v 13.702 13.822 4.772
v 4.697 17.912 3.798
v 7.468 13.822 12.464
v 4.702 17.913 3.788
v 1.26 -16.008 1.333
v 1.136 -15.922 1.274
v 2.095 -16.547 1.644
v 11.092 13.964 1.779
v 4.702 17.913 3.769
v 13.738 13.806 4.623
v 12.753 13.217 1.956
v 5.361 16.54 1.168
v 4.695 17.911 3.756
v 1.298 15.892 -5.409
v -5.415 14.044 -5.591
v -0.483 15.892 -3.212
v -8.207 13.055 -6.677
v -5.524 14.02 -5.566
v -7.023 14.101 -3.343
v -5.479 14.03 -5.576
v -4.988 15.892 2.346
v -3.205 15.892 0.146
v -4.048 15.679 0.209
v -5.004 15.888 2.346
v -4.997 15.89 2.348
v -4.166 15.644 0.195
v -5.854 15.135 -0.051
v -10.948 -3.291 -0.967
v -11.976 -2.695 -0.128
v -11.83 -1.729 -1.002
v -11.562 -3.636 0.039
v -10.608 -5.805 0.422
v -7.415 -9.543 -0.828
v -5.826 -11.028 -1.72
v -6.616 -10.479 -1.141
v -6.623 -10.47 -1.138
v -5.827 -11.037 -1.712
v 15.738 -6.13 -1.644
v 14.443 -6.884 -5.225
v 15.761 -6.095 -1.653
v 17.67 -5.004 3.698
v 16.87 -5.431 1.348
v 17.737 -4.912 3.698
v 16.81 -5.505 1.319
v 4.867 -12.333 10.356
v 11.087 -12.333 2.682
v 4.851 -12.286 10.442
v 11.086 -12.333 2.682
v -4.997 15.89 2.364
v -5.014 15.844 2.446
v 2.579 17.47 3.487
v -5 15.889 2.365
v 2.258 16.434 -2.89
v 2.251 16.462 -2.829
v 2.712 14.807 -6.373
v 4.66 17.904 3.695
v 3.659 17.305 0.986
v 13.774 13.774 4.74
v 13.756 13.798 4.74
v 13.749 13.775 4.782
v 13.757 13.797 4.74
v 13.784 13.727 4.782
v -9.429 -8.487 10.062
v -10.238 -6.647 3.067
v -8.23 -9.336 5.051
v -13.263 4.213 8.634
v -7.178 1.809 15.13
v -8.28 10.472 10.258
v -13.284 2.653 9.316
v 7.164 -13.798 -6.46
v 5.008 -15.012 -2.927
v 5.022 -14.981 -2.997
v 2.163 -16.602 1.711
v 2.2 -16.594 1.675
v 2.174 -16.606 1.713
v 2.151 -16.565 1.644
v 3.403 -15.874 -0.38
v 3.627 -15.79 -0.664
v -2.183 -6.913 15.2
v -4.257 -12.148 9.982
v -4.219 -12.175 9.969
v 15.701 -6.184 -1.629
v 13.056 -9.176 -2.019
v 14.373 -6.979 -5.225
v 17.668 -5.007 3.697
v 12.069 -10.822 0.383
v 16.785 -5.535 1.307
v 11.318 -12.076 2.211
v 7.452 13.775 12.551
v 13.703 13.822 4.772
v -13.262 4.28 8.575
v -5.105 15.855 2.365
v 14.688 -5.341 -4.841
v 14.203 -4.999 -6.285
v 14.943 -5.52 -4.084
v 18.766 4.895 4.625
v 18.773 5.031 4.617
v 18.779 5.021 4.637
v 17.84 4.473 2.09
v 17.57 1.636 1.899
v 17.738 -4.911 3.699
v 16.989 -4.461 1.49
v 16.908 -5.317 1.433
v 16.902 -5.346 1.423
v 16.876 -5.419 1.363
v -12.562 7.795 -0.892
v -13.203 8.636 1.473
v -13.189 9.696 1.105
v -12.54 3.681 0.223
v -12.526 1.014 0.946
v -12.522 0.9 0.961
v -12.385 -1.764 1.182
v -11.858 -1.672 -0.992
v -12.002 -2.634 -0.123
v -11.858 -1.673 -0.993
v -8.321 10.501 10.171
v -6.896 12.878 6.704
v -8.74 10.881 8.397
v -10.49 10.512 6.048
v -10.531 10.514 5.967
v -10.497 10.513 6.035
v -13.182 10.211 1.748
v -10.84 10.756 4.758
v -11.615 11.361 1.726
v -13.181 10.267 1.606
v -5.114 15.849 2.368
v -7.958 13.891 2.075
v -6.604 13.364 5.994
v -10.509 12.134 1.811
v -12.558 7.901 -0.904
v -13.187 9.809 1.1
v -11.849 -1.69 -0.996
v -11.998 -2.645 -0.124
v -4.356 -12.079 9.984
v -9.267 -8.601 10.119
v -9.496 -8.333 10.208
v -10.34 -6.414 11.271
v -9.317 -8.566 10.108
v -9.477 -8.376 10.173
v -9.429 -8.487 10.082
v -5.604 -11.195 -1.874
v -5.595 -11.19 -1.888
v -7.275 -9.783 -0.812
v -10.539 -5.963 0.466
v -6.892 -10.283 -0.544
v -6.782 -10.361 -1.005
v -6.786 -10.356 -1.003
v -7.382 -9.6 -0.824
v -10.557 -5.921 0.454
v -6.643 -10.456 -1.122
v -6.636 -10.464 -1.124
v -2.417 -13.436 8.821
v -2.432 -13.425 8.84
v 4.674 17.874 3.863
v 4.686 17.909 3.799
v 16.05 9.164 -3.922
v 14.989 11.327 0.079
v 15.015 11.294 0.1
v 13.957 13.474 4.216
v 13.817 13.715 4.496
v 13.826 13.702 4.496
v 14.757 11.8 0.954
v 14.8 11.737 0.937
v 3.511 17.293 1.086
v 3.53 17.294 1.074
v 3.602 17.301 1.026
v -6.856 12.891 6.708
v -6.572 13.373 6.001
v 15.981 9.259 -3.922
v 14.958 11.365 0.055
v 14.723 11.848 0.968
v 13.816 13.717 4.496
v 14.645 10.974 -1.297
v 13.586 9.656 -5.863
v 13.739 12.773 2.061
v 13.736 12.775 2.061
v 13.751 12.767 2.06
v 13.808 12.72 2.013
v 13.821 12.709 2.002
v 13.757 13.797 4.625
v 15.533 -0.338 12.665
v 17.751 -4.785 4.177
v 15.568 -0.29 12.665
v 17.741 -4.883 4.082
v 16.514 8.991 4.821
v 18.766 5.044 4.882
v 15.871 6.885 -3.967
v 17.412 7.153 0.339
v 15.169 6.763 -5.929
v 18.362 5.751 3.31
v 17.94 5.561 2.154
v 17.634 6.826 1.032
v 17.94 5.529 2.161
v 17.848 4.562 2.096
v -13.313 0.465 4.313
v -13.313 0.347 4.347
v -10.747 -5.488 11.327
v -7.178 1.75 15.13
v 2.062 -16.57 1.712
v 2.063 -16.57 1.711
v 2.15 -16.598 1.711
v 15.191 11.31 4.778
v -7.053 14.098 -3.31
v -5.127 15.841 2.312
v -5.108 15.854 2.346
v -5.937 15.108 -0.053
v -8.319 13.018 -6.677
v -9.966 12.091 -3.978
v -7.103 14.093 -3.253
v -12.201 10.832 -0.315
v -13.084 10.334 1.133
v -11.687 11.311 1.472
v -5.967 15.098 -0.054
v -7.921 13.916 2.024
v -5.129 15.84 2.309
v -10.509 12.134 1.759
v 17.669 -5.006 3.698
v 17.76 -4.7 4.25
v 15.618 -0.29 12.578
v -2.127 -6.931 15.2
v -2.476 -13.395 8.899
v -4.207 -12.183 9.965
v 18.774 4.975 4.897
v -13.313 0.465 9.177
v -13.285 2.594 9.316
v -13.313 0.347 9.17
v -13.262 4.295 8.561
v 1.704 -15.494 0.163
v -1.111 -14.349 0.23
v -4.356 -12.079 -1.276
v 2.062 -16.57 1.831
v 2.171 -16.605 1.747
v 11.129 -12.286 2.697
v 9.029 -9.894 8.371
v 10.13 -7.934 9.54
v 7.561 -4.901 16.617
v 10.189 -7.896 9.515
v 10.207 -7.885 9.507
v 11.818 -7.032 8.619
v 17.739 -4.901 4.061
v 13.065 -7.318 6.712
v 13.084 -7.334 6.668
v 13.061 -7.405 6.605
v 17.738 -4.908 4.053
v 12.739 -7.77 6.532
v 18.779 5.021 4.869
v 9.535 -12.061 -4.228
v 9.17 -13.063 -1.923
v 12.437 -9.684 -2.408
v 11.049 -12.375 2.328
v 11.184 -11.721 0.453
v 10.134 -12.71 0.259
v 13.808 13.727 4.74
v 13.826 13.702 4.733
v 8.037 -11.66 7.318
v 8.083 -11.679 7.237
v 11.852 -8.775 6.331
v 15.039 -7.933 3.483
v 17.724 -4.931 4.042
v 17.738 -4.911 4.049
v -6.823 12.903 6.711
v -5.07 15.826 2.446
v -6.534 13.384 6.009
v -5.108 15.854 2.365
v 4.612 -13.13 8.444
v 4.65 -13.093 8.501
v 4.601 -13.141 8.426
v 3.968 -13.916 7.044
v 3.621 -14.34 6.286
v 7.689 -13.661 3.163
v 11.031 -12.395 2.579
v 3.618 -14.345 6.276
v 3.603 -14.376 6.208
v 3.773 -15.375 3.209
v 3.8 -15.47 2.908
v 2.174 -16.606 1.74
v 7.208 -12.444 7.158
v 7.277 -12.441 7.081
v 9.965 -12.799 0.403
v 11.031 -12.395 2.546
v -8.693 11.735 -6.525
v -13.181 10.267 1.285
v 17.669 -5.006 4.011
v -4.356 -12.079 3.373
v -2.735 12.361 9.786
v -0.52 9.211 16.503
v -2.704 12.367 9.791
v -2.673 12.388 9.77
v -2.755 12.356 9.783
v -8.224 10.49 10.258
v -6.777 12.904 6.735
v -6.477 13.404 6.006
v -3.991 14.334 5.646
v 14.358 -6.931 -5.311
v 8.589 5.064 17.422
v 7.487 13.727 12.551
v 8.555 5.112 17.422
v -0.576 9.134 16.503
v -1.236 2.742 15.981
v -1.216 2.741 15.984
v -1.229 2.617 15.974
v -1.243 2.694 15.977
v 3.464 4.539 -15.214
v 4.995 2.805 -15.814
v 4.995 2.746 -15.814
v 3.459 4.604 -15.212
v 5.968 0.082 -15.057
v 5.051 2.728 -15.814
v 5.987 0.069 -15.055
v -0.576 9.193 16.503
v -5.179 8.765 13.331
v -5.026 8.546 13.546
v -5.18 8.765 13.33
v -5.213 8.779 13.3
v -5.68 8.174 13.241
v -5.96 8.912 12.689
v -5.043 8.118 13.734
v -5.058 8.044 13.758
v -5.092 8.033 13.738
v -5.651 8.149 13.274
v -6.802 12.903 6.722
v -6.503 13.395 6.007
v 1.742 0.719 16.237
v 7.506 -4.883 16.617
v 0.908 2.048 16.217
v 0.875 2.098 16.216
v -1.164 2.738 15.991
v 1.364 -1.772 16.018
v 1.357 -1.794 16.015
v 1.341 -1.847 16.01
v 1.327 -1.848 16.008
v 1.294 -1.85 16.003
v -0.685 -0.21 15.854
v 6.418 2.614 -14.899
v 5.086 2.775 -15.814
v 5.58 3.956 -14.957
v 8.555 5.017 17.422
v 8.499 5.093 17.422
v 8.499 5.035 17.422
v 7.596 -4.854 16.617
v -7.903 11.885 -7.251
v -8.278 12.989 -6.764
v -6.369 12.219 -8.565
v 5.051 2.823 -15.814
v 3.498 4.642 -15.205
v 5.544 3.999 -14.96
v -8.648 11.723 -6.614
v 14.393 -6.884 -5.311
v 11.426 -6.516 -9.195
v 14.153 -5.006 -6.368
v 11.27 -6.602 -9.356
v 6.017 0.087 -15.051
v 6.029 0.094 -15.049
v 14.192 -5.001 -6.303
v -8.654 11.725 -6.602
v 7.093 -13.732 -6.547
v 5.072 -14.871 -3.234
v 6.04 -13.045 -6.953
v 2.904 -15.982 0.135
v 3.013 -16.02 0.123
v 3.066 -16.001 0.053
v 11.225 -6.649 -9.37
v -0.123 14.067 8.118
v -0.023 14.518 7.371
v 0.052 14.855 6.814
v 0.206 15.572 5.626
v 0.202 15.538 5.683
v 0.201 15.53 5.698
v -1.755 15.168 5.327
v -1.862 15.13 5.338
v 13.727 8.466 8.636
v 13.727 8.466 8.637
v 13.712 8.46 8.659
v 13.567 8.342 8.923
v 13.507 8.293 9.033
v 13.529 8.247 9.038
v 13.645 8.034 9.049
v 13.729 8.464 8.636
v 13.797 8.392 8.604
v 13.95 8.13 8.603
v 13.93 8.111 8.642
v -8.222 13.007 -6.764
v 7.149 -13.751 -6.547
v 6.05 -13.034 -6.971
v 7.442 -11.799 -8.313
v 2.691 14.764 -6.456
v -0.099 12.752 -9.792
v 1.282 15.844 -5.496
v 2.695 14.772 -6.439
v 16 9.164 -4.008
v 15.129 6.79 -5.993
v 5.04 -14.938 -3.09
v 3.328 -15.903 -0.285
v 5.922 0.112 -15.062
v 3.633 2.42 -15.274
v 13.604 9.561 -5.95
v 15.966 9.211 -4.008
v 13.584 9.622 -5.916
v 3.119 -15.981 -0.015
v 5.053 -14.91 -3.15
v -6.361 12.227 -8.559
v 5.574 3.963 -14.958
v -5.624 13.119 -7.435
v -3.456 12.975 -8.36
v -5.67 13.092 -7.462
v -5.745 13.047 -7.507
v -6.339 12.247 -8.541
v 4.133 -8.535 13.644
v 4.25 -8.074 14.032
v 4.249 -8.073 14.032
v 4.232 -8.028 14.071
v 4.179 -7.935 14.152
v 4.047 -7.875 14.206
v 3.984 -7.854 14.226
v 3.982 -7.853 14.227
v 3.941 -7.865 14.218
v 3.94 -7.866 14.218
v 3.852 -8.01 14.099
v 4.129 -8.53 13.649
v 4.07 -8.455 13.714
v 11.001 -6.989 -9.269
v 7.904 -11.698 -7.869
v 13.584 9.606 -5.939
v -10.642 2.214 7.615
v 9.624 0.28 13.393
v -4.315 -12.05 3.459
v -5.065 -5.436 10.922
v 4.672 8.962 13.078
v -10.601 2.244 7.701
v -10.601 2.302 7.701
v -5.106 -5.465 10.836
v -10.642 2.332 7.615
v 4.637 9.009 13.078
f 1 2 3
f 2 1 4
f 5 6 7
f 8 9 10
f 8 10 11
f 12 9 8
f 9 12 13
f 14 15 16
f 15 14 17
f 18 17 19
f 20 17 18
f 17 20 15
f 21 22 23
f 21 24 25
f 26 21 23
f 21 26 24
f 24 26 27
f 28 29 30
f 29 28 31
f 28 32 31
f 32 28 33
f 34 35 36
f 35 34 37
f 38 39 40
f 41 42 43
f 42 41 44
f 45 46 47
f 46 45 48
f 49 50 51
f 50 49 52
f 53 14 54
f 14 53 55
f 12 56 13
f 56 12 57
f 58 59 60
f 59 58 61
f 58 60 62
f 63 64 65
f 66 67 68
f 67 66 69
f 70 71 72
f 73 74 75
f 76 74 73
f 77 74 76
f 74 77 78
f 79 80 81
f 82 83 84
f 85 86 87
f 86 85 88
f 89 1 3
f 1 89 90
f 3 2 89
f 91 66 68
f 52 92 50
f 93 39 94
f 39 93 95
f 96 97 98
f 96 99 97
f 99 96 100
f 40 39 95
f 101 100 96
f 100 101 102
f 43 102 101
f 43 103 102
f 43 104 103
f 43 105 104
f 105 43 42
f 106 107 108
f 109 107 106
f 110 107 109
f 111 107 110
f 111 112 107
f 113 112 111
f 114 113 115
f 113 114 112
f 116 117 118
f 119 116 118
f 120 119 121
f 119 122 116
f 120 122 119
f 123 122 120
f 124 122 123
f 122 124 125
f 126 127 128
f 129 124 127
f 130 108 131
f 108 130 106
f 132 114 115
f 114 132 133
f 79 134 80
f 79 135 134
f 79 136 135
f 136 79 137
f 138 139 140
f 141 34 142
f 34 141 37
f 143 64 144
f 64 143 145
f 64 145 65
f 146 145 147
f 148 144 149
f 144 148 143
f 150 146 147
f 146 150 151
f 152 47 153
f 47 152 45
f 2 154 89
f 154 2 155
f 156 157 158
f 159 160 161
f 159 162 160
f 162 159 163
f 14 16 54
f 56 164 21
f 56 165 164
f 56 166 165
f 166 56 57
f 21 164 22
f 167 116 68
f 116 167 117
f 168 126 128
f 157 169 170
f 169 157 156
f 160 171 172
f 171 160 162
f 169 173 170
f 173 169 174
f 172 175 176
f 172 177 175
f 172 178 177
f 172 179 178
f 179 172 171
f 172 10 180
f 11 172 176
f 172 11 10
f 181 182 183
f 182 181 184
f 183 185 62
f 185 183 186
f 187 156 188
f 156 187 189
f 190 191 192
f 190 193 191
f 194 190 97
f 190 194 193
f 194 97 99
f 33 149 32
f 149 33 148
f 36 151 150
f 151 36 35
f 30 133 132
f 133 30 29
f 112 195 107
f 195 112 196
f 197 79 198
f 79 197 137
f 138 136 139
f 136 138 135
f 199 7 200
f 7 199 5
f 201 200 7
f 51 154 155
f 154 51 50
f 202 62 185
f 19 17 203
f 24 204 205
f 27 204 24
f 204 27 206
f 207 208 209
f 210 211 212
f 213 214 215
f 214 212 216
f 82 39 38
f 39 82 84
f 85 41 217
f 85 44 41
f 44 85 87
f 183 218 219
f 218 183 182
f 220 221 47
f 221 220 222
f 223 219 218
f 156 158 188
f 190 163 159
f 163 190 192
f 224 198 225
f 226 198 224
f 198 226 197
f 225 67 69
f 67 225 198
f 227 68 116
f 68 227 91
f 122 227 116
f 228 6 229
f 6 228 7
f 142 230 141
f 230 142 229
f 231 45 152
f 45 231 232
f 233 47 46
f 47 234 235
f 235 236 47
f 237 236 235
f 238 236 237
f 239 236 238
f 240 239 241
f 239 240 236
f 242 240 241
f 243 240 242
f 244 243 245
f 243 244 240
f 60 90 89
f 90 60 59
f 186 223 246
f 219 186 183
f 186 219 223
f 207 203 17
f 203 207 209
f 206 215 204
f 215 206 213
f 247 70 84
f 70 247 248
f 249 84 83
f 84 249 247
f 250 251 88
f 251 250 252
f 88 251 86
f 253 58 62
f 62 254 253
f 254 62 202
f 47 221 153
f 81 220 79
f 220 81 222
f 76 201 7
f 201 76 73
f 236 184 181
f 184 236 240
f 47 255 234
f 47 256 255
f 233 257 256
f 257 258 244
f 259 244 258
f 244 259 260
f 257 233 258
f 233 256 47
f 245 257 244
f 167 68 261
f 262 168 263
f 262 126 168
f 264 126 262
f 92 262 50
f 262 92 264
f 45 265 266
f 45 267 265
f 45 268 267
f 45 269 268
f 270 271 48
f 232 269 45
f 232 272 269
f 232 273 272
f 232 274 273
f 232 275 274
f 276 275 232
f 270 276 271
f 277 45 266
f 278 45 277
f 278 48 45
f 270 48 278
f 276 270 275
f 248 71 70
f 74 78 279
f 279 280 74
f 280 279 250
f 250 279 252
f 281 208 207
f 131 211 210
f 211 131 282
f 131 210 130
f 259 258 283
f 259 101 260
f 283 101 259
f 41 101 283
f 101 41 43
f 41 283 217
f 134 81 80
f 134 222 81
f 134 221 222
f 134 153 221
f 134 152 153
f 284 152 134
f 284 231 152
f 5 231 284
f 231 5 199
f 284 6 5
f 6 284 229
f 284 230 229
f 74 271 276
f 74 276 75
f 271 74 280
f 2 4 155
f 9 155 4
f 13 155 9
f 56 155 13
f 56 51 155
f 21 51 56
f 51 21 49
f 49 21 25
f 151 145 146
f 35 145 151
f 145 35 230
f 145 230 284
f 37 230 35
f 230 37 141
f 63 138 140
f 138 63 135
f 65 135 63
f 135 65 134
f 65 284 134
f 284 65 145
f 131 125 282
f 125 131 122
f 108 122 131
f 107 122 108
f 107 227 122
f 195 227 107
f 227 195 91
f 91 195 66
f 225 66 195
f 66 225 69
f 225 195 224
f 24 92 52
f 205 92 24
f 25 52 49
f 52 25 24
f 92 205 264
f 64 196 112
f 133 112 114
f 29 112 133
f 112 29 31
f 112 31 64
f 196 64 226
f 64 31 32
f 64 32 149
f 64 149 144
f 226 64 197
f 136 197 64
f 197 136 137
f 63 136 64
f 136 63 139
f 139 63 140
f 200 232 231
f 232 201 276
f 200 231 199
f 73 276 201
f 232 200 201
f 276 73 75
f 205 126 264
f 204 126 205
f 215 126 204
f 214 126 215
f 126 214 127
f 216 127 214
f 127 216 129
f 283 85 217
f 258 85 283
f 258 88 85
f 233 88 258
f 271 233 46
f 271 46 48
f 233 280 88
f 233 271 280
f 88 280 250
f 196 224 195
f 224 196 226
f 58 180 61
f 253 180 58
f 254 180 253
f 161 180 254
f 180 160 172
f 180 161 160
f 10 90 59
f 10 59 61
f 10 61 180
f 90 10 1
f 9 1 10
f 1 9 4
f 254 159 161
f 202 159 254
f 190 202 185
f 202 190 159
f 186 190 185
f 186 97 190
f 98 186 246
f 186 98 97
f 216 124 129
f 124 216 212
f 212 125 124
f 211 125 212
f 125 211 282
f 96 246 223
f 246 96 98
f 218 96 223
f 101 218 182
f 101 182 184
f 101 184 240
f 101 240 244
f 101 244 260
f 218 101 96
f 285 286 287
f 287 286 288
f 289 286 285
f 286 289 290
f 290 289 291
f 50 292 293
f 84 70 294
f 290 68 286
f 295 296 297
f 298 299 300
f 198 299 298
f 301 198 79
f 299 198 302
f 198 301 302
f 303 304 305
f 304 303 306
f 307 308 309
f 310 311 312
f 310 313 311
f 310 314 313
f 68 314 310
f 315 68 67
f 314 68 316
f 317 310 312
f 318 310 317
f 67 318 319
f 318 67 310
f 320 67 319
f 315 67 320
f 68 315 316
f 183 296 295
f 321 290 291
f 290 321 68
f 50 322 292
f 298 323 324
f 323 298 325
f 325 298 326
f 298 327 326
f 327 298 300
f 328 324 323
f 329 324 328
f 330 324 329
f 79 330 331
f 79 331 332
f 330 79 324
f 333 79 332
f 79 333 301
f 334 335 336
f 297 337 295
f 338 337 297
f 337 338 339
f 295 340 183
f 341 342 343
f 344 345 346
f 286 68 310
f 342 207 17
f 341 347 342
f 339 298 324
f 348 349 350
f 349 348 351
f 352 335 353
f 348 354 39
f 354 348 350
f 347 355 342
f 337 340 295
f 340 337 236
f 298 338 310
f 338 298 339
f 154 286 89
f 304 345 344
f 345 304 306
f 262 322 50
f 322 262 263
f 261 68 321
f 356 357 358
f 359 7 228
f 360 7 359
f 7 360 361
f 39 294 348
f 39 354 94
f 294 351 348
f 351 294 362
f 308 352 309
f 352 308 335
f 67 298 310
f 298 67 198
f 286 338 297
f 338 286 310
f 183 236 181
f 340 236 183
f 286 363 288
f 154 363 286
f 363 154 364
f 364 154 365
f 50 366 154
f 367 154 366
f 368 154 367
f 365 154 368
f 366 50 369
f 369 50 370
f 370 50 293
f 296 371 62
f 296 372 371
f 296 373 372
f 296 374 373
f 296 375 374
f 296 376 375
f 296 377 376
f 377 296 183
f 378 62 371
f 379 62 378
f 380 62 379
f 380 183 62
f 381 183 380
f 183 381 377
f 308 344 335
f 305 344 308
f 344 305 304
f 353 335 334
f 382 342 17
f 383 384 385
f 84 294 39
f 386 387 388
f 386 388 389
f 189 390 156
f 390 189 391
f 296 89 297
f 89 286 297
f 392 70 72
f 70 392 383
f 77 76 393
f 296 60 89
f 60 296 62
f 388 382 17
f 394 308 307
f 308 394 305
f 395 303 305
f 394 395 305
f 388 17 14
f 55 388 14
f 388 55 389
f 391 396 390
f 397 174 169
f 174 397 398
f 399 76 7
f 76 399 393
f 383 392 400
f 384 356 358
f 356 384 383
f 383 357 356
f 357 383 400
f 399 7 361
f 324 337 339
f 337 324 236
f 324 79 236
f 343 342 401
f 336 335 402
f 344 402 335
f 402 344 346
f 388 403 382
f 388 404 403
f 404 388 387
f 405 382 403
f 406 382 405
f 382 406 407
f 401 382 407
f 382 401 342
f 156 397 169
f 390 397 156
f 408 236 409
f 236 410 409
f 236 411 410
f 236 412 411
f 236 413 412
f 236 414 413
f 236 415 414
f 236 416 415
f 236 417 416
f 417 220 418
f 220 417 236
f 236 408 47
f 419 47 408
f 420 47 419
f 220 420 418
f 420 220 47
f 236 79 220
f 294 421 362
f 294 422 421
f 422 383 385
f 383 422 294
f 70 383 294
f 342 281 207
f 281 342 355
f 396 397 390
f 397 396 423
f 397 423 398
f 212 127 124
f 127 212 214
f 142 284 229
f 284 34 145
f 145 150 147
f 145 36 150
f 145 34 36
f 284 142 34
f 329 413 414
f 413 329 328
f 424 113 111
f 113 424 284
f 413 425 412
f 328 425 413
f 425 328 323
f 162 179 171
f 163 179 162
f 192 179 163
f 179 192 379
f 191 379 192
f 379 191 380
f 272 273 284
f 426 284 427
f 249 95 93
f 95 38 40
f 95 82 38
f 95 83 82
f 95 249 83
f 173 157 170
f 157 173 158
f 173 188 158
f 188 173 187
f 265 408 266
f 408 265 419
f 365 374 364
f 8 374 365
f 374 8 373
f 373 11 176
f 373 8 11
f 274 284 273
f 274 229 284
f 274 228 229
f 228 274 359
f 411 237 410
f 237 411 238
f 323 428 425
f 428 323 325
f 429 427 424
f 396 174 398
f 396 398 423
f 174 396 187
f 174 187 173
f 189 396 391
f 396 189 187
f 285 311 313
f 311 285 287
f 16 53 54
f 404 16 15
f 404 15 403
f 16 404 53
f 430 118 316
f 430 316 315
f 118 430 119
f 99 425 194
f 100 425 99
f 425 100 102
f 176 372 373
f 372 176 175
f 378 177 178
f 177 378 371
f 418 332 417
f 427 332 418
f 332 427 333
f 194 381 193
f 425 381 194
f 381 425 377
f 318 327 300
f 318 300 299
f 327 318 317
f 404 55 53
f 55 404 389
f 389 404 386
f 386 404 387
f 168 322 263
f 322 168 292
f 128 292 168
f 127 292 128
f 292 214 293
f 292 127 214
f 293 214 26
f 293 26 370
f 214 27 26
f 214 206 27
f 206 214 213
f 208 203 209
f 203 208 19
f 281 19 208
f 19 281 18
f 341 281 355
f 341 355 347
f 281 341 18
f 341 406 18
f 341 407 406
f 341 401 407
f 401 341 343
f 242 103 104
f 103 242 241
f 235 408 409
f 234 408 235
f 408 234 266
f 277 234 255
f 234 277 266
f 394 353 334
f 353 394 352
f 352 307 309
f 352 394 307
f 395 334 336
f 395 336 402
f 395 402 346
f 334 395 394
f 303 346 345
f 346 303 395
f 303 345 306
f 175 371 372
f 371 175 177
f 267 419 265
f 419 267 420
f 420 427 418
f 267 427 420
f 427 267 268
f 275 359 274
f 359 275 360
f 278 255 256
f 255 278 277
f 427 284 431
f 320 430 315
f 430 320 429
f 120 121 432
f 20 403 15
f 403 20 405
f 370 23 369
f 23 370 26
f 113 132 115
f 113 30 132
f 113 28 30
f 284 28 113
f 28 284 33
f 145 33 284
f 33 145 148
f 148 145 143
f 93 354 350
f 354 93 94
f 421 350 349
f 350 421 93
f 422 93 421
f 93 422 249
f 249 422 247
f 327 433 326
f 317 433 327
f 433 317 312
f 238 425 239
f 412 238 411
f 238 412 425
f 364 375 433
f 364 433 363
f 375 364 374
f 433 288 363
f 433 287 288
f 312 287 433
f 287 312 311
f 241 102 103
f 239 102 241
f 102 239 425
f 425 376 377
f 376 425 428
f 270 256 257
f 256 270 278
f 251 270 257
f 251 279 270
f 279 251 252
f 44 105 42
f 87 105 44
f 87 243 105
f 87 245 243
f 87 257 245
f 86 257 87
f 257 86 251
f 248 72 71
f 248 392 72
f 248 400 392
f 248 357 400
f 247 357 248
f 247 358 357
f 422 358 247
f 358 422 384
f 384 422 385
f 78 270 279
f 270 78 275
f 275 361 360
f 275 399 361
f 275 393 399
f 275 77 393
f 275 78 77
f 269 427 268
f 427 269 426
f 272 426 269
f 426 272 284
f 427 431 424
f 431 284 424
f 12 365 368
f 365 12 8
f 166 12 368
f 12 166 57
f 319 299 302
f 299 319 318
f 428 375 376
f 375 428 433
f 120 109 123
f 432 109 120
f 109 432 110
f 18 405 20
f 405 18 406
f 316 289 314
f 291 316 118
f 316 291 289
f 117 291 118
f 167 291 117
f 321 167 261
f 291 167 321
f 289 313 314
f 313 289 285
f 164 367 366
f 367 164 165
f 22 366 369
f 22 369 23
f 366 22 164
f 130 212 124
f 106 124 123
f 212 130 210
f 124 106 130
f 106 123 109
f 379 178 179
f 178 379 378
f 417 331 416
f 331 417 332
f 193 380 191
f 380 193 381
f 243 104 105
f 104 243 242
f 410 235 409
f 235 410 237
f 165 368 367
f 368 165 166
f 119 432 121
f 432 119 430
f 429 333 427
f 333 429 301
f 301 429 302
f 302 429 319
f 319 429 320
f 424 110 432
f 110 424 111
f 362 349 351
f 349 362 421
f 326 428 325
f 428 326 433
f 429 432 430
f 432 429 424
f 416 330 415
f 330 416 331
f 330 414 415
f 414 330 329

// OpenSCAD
// Auto-generated OpenSCAD file

    inner_points = 10*[[1.1000305201583598, -1.229950875030529, -0.08894189251692455], [-0.5027426604470553, 1.579473909815398, -0.1908558995277139], [-0.846549708488417, -0.523909617402483, -1.3897599911510223], [0.01808376162039204, 0.08034171518490725, 1.6695577831956607], [0.1351283573464456, -0.5466570677439849, -1.5789443683117281], [0.9574436533003191, 0.028020099593282485, 1.3306397363982712], [-0.3601557935890146, 0.3215029351915868, -1.6104375284429095], [0.46215950236485903, 0.8961801025288543, 1.2991465762670897], [0.21433774726042953, -1.6511067907648083, -0.284328705476233], [0.4815241834294346, -1.4643828601215962, 0.6610524779902326], [-1.30999013029746, 1.0208149579040204, -0.3812546859455942], [-1.0428036941284546, 1.2075388885472327, 0.5641264975208714], [0.6928698992905247, -1.139259691273304, -0.9977847491226374], [1.2010887016589473, -0.7840896693003617, 0.8004371207145751], [-0.603800841947643, 1.133612704085231, -1.0802349127592135], [-0.09558203957922018, 1.4887827260581734, 0.7179869570779989], [-0.2929413398808356, -1.2918779775559366, -1.0676693641360977], [0.40656183134257406, -0.8030283806190294, 1.4073707065037098], [-1.2350277782105992, 0.35946047840145373, -1.1275729144590714], [-0.5355246069871895, 0.8483100753383608, 1.347467156180736], [1.766851594949058, 0.056206898787851886, -0.8094846211676406], [0.9654650046463505, 1.4609192912108153, -0.8604416246730354], [1.867909776449646, 0.502068104518019, 0.07989439206385895], [1.3726256255141858, 1.3702281074535907, 0.04840123193267751], [1.209110053004979, 0.6488095223171712, -1.3906442403567312], [1.7637877113705789, -0.4911118899577973, 0.027433986645217595], [0.46711697013241127, 1.781760505400738, -0.05501617699135854], [1.104987987925912, -0.3443704721586452, -1.443104645775373], [0.3036013976232044, 1.0603419202643185, -1.4940616492807675], [1.3695617419357062, 0.8229093187079415, 0.8853198397455359], [-0.9347794463333561, -0.8427966545821481, -0.44608283720557035], [-0.5024627112789515, -0.5406709882884531, 1.0835760499677713], [-1.3232575160555382, 0.04057344122178862, -0.18389576051361925], [-1.056071079886533, 0.2272973718650007, 0.7614854229528463], [-0.42750035919209084, -1.2020254677910198, 0.33725782145429417]];

    outer_points = 10*[[-0.7137129435947347, 0.17792343145379144, 1.5043015733227778], [1.3239769119334912, 0.17792343145379144, -1.0096506950540378], [0.21352822928092163, -1.651791935642422, 0.17307580265061], [-0.8237921976196783, 1.2959450727348392, -0.66772668091935], [0.4835667626024947, -1.2238088136169964, 1.035577766580492], [-0.5029835888873913, 1.5796556765245793, 0.23592708566413276], [1.113247557226148, -1.2238088136169964, 0.25872379260460726], [0.12669720573626192, 1.5796556765245793, -0.540926888311752], [-1.1138362715514227, -0.6333738467220617, 1.0780410322808966], [-1.4343859120759834, 0.2775269838144787, 0.8182187759451166], [0.8241219437372267, -0.6333738467220617, -1.3128696542138567], [0.503572303212666, 0.2775269838144787, -1.5726919105496369], [-0.21427005260755239, -0.6883947391266527, 1.5113461431831696], [-0.8239917014414573, 1.0442416020342355, 1.0171348432498628], [1.4342556697802138, -0.6883947391266527, -0.522483964981123], [0.824534020946309, 1.0442416020342355, -1.0166952649144299], [-0.48438908009468373, -1.370308098816377, 0.8316183440855609], [-1.3235989340695444, 1.0144612359087941, 0.1513948459648008], [0.7133349657307877, -1.370308098816377, -0.6460457242335407], [-0.125874888244073, 1.0144612359087941, -1.3262692223543007], [0.853949656636206, 0.5064090455601755, 1.7335725089256413], [1.872794584400319, 0.5064090455601755, 0.4765963747372335], [0.7436708987894836, 1.3727272161406197, 1.2464057788527265], [1.3733516934131367, 1.3727272161406197, 0.46955180487684184], [1.551786471846253, -0.029005028930168097, 1.2578041323229636], [-0.05351685582956189, 0.9163527802772624, 1.6416450205479904], [1.5950088665582043, 0.9163527802772624, -0.3921850876163021], [0.7545987172272076, -0.48537946479352545, 1.6530433740182278], [1.7734436449913207, -0.48537946479352545, 0.39606723982981995], [0.4658851809473687, 1.7826709508577065, 0.37762431649919076], [-0.5833500199011764, -1.1317876660773551, -0.1344638136829207], [-1.1020102333514763, 0.3420808381112755, -0.5548650554679007], [-0.08354328345131035, -0.85030382925131, -0.9535853405670716], [-0.40409292397587104, 0.06059700128523038, -1.2134075969028517], [-1.2127972113579153, -0.3948534139830398, 0.11195887451241493]];

    // Convex hull for inner set (I)
    module inner_hull() {
        hull() {
            for (p = inner_points) {
                translate(p) sphere(r=0.1);
            }
        }
    }

    // Convex hull for outer set (O) minus inner hull (O \ I)
    module outer_minus_inner() {
        difference() {
            hull() {
                for (p = outer_points) {
                    translate(p) sphere(r=0.1);
                }
            }
            inner_hull(); // Subtract inner hull
        }
    }

    // Convex hull for outer set (O) minus all translated inner hulls
    module outer_minus_AllTranslationInner() {
        difference() {
            hull() {
                for (p = outer_points) {
                    translate(p) sphere(r=0.1);
                }
            }
            hull() {
                translate([0,0,50]) inner_hull();
                translate([0,0,-50]) inner_hull();
            }; // Subtract translated inner hulls
        }
    }

    // Difference between outer_minus_inner and outer_minus_AllTranslationInner
    module outer_minus_inner_diff() {
        difference() {
            // Outer minus inner
            difference() {
                hull() {
                    for (p = outer_points) {
                        translate(p) sphere(r=0.1);
                    }
                }
                inner_hull();
            }

            // Subtract Outer minus AllTranslationInner
            difference() {
                hull() {
                    for (p = outer_points) {
                        translate(p) sphere(r=0.1);
                    }
                }
                hull() {
                    translate([0,0,50]) inner_hull();
                    translate([0,0,-50]) inner_hull();
                };
            }
        }
    }

    // Rendering all with colors applied
    color([1, 1, 0, 1]) outer_minus_inner_diff(); // Opaque yellow
    
